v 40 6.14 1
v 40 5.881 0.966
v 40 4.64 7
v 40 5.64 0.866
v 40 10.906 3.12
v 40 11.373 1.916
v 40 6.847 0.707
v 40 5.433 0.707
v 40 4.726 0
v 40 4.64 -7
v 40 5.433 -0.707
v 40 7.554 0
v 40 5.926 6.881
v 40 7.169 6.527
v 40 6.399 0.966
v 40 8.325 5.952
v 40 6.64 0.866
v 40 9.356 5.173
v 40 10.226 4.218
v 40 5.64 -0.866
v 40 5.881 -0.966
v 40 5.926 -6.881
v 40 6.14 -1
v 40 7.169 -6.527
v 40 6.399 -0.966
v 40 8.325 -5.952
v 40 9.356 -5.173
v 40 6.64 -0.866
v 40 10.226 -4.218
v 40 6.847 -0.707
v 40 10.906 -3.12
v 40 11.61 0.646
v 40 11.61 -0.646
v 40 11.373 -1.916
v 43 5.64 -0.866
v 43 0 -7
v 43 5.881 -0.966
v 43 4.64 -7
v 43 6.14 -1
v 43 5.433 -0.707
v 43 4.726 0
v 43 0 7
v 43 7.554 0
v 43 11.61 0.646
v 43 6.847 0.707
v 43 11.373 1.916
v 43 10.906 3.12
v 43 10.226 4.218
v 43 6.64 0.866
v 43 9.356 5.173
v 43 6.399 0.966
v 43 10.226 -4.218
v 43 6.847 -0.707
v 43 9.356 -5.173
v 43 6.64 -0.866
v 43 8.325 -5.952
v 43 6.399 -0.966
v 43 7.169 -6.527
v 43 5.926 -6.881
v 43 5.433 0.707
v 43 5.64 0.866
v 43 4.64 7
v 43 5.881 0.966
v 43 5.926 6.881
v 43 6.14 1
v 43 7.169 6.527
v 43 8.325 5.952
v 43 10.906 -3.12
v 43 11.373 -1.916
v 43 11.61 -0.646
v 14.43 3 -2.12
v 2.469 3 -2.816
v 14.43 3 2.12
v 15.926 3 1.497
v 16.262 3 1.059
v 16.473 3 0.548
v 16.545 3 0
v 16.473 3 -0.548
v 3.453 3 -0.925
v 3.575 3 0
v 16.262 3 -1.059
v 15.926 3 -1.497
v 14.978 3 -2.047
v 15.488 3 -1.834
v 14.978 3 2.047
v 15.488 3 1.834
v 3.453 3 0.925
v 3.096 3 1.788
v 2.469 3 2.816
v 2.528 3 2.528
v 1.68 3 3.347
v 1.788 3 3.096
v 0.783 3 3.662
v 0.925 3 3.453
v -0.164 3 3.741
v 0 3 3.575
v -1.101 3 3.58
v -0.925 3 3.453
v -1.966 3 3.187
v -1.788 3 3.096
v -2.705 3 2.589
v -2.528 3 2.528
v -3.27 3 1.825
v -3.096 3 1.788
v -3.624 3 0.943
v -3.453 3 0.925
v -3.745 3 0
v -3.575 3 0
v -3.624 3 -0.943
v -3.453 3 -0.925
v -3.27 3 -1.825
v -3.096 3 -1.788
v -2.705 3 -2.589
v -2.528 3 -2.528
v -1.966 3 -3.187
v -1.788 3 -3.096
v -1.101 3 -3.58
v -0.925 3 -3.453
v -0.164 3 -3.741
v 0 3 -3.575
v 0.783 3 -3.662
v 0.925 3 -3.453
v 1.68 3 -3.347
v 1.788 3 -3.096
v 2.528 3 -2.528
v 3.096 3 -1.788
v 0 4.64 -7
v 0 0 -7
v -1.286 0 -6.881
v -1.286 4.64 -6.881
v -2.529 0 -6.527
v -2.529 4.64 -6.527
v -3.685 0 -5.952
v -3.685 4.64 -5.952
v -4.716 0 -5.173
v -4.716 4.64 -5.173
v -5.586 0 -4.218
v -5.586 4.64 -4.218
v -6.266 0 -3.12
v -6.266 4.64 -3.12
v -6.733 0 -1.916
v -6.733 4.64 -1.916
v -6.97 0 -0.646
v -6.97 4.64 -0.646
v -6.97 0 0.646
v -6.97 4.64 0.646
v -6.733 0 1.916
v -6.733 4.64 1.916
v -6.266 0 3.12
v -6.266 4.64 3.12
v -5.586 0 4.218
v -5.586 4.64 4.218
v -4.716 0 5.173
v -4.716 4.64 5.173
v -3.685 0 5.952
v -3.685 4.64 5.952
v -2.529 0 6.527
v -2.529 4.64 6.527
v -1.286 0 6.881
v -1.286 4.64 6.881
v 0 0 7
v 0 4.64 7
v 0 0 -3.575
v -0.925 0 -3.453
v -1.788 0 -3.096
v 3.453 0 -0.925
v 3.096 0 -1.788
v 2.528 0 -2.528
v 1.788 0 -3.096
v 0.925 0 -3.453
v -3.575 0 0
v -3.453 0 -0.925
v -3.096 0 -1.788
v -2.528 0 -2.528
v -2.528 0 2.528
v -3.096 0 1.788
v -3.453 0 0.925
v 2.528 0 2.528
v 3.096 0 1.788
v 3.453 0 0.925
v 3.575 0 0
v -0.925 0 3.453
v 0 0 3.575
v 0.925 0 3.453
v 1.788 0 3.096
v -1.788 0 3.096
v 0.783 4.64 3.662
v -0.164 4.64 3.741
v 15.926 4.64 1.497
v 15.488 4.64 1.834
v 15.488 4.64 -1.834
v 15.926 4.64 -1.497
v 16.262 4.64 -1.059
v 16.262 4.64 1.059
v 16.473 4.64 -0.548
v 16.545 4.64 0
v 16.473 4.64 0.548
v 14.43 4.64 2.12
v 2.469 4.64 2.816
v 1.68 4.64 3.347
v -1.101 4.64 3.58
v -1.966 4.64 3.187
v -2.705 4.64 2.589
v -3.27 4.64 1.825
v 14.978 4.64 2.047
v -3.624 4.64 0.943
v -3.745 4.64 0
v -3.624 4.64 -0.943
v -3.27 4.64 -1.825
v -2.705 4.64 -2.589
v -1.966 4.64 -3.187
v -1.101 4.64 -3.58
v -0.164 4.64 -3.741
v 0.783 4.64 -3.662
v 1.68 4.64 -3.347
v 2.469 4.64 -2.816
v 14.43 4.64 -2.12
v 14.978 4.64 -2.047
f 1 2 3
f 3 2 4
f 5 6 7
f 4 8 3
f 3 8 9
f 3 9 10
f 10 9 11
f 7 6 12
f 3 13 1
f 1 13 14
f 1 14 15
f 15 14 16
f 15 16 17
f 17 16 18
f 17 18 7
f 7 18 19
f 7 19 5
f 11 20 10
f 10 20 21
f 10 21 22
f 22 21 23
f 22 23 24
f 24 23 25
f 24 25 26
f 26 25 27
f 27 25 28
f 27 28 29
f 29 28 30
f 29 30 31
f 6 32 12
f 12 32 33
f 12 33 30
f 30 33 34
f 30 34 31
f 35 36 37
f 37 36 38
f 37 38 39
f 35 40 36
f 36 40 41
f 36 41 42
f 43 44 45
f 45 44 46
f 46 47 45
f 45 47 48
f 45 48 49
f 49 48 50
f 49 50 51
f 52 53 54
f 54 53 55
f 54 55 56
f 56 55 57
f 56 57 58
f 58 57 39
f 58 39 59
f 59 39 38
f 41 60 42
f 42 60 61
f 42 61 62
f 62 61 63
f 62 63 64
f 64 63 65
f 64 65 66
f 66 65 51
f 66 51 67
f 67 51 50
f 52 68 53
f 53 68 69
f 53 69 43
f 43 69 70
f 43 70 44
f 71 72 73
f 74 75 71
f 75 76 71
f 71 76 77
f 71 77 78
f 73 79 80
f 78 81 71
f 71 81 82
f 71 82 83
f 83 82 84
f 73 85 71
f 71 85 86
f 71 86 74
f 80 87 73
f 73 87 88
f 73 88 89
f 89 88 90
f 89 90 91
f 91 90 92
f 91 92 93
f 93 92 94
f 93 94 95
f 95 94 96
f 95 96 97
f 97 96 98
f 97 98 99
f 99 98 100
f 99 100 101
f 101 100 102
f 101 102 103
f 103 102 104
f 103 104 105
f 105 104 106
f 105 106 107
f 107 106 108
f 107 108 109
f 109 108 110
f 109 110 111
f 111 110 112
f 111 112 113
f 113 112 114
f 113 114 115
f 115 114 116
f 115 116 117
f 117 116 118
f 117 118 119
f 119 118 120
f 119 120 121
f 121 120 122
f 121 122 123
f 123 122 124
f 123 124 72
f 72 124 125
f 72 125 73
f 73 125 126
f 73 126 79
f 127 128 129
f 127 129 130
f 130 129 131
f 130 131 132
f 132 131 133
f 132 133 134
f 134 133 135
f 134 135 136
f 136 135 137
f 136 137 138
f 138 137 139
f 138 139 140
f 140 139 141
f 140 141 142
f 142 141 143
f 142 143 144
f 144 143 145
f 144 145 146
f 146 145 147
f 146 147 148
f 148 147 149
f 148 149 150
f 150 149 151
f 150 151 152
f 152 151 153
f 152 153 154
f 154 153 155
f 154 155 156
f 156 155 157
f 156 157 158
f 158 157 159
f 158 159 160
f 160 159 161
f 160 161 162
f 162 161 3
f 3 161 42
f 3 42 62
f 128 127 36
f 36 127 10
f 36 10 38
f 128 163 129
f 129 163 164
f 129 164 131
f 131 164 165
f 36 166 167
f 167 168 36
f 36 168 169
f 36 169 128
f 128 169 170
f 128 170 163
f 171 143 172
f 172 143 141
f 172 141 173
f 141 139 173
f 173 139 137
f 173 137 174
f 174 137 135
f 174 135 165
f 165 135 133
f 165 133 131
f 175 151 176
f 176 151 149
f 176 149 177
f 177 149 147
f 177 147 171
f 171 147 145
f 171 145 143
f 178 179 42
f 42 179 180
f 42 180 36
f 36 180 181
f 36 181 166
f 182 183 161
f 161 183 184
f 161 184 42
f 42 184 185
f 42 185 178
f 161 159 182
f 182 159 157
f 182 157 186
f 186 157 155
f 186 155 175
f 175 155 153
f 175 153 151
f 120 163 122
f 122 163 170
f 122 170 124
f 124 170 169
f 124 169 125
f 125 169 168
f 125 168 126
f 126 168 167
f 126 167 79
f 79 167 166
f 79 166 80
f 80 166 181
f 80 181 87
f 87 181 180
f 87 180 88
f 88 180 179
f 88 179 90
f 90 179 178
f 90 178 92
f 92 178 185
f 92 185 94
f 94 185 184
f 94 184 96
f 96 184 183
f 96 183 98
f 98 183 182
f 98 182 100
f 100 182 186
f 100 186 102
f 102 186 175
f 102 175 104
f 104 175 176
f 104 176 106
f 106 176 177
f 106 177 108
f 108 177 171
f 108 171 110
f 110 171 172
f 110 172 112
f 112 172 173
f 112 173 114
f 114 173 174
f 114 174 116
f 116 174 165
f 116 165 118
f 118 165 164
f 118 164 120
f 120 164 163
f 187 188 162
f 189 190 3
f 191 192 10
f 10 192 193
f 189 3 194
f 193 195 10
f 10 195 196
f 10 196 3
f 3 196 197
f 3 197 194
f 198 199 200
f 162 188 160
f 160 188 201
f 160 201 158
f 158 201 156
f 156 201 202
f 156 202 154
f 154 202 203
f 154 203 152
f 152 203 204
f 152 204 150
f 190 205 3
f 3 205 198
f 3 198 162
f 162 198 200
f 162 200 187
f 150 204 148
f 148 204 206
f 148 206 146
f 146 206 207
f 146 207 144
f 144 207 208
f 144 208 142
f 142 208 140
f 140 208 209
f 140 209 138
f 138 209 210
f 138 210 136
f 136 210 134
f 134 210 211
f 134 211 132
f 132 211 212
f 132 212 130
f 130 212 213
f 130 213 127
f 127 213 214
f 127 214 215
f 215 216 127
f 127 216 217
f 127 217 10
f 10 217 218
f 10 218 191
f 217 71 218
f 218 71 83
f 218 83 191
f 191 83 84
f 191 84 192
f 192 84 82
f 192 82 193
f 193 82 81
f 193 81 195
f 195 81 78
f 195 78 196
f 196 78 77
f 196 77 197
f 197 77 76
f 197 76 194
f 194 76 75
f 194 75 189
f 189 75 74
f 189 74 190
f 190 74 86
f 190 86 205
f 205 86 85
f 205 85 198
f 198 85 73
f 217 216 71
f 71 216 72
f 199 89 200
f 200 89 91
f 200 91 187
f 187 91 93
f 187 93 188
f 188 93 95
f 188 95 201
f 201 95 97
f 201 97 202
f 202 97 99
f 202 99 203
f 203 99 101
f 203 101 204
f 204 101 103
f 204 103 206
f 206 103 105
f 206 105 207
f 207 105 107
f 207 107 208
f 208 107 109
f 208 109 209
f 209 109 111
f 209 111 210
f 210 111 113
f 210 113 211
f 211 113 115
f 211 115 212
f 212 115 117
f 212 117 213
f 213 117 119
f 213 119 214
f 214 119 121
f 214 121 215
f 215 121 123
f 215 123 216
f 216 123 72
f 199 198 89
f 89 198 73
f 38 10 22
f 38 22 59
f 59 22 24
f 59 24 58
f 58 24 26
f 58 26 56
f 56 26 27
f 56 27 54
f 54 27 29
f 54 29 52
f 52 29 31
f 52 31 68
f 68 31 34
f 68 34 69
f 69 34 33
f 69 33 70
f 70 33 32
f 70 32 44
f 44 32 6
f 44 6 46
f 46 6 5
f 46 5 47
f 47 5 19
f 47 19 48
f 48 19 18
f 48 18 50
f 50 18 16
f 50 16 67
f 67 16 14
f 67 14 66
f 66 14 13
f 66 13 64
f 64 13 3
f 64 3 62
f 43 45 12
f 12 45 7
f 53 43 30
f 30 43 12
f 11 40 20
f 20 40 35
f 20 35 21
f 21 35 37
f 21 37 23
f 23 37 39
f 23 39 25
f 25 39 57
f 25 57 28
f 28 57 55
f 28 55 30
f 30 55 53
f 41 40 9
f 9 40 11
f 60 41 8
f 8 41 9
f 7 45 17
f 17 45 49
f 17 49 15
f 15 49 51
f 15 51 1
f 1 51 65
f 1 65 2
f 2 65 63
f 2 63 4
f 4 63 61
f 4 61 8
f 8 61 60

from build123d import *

# Parameters (mm, degrees)
BOSS_EXTRUDE1_DEPTH = 3
SKETCH2_R           = 3.575
CUT_EXTRUDE1_DEPTH  = 3.95
BOSS_EXTRUDE2_DEPTH = 1.64
BOSS_EXTRUDE6_DEPTH = 3
CUT_EXTRUDE8_REACH  = 53.812
SKETCH11_R          = 1


with BuildPart() as part:
    # Sketch1 → Boss-Extrude1 (new body)
    with BuildSketch(Plane(origin=(0, 0, 0), x_dir=(1, 0, 0), z_dir=(0, 1, 0))):
        with BuildLine():
            Line((0, 7), (40, 7))
            Line((40, 7), (40, -7))
            Line((40, -7), (0, -7))
            ThreePointArc((0, -7), (-7, 0), (0, 7))
        make_face()
    extrude(amount=BOSS_EXTRUDE1_DEPTH)

    # Sketch2 → Cut-Extrude1 (cut)
    with BuildSketch(Plane.XZ):
        with Locations(Location((0, 0, 0), (0, 0, 270))):
            Circle(SKETCH2_R)
    extrude(amount=-CUT_EXTRUDE1_DEPTH, mode=Mode.SUBTRACT)

    # Sketch3 → Boss-Extrude2 (add)
    with BuildSketch(Plane(origin=(0, 3, 0), x_dir=(1, 0, 0), z_dir=(0, 1, 0))):
        with BuildLine():
            Line((40, -7), (40, 7))
            Line((40, 7), (0, 7))
            ThreePointArc((0, 7), (-7, 0), (0, -7))
            Line((0, -7), (40, -7))
        make_face()
        with BuildLine():
            Line((14.43004688, 2.119993993), (2.468524523, 2.816276208))
            ThreePointArc((2.468524523, 2.816276208), (-3.745, 0), (2.468524523, -2.816276208))
            Line((2.468524523, -2.816276208), (14.43004688, -2.119993993))
            ThreePointArc((14.43004688, -2.119993993), (16.545, 0), (14.43004688, 2.119993993))
        make_face(mode=Mode.SUBTRACT)
    extrude(amount=BOSS_EXTRUDE2_DEPTH)

    # Sketch9 → Boss-Extrude6 (add)
    with BuildSketch(Plane(origin=(40, 0, 0), x_dir=(0, 0, -1), z_dir=(1, 0, 0))):
        with BuildLine():
            Line((-7, 4.64), (-7, 0))
            Line((-7, 0), (7, 0))
            Line((7, 0), (7, 4.64))
            ThreePointArc((7, 4.64), (0, 11.64), (-7, 4.64))
        make_face()
    extrude(amount=BOSS_EXTRUDE6_DEPTH)

    # Sketch11 → Cut-Extrude8 (cut, up to next)
    with BuildSketch(Plane(origin=(43, 0, 0), x_dir=(0, 0, -1), z_dir=(1, 0, 0)), mode=Mode.PRIVATE) as cut_extrude8_sk1:
        with BuildLine():
            Line((0, 7.554213562), (-0.707106782, 6.84710678))
            ThreePointArc((-0.707106782, 6.84710678), (1e-09, 7.14), (0.707106784, 6.847106778))
            Line((0.707106784, 6.847106778), (0, 7.554213562))
        make_face()
    cut_extrude8_tool1 = extrude(cut_extrude8_sk1.sketch, amount=-CUT_EXTRUDE8_REACH, mode=Mode.PRIVATE) & part.part
    # Sketch11 → Cut-Extrude8 (cut, up to next)
    with BuildSketch(Plane(origin=(43, 0, 0), x_dir=(0, 0, -1), z_dir=(1, 0, 0)), mode=Mode.PRIVATE) as cut_extrude8_sk2:
        with BuildLine():
            ThreePointArc((0.707106779, 5.432893216), (-2e-09, 5.14), (-0.707106782, 5.43289322))
            Line((-0.707106782, 5.43289322), (0, 4.725786438))
            Line((0, 4.725786438), (0.707106779, 5.432893216))
        make_face()
    cut_extrude8_tool2 = extrude(cut_extrude8_sk2.sketch, amount=-CUT_EXTRUDE8_REACH, mode=Mode.PRIVATE) & part.part
    # Sketch11 → Cut-Extrude8 (cut, up to next)
    with BuildSketch(Plane(origin=(43, 0, 0), x_dir=(0, 0, -1), z_dir=(1, 0, 0)), mode=Mode.PRIVATE) as cut_extrude8_sk3:
        with Locations((0, 6.14)):
            Circle(SKETCH11_R)
    cut_extrude8_tool3 = extrude(cut_extrude8_sk3.sketch, amount=-CUT_EXTRUDE8_REACH, mode=Mode.PRIVATE) & part.part
    add(cut_extrude8_tool1.solids().sort_by_distance((43, 7.238324, 0))[0], mode=Mode.SUBTRACT)
    add(cut_extrude8_tool2.solids().sort_by_distance((43, 5.041676, 0))[0], mode=Mode.SUBTRACT)
    add(cut_extrude8_tool3.solids().sort_by_distance((43, 6.14, 0))[0], mode=Mode.SUBTRACT)


solid = part.part
